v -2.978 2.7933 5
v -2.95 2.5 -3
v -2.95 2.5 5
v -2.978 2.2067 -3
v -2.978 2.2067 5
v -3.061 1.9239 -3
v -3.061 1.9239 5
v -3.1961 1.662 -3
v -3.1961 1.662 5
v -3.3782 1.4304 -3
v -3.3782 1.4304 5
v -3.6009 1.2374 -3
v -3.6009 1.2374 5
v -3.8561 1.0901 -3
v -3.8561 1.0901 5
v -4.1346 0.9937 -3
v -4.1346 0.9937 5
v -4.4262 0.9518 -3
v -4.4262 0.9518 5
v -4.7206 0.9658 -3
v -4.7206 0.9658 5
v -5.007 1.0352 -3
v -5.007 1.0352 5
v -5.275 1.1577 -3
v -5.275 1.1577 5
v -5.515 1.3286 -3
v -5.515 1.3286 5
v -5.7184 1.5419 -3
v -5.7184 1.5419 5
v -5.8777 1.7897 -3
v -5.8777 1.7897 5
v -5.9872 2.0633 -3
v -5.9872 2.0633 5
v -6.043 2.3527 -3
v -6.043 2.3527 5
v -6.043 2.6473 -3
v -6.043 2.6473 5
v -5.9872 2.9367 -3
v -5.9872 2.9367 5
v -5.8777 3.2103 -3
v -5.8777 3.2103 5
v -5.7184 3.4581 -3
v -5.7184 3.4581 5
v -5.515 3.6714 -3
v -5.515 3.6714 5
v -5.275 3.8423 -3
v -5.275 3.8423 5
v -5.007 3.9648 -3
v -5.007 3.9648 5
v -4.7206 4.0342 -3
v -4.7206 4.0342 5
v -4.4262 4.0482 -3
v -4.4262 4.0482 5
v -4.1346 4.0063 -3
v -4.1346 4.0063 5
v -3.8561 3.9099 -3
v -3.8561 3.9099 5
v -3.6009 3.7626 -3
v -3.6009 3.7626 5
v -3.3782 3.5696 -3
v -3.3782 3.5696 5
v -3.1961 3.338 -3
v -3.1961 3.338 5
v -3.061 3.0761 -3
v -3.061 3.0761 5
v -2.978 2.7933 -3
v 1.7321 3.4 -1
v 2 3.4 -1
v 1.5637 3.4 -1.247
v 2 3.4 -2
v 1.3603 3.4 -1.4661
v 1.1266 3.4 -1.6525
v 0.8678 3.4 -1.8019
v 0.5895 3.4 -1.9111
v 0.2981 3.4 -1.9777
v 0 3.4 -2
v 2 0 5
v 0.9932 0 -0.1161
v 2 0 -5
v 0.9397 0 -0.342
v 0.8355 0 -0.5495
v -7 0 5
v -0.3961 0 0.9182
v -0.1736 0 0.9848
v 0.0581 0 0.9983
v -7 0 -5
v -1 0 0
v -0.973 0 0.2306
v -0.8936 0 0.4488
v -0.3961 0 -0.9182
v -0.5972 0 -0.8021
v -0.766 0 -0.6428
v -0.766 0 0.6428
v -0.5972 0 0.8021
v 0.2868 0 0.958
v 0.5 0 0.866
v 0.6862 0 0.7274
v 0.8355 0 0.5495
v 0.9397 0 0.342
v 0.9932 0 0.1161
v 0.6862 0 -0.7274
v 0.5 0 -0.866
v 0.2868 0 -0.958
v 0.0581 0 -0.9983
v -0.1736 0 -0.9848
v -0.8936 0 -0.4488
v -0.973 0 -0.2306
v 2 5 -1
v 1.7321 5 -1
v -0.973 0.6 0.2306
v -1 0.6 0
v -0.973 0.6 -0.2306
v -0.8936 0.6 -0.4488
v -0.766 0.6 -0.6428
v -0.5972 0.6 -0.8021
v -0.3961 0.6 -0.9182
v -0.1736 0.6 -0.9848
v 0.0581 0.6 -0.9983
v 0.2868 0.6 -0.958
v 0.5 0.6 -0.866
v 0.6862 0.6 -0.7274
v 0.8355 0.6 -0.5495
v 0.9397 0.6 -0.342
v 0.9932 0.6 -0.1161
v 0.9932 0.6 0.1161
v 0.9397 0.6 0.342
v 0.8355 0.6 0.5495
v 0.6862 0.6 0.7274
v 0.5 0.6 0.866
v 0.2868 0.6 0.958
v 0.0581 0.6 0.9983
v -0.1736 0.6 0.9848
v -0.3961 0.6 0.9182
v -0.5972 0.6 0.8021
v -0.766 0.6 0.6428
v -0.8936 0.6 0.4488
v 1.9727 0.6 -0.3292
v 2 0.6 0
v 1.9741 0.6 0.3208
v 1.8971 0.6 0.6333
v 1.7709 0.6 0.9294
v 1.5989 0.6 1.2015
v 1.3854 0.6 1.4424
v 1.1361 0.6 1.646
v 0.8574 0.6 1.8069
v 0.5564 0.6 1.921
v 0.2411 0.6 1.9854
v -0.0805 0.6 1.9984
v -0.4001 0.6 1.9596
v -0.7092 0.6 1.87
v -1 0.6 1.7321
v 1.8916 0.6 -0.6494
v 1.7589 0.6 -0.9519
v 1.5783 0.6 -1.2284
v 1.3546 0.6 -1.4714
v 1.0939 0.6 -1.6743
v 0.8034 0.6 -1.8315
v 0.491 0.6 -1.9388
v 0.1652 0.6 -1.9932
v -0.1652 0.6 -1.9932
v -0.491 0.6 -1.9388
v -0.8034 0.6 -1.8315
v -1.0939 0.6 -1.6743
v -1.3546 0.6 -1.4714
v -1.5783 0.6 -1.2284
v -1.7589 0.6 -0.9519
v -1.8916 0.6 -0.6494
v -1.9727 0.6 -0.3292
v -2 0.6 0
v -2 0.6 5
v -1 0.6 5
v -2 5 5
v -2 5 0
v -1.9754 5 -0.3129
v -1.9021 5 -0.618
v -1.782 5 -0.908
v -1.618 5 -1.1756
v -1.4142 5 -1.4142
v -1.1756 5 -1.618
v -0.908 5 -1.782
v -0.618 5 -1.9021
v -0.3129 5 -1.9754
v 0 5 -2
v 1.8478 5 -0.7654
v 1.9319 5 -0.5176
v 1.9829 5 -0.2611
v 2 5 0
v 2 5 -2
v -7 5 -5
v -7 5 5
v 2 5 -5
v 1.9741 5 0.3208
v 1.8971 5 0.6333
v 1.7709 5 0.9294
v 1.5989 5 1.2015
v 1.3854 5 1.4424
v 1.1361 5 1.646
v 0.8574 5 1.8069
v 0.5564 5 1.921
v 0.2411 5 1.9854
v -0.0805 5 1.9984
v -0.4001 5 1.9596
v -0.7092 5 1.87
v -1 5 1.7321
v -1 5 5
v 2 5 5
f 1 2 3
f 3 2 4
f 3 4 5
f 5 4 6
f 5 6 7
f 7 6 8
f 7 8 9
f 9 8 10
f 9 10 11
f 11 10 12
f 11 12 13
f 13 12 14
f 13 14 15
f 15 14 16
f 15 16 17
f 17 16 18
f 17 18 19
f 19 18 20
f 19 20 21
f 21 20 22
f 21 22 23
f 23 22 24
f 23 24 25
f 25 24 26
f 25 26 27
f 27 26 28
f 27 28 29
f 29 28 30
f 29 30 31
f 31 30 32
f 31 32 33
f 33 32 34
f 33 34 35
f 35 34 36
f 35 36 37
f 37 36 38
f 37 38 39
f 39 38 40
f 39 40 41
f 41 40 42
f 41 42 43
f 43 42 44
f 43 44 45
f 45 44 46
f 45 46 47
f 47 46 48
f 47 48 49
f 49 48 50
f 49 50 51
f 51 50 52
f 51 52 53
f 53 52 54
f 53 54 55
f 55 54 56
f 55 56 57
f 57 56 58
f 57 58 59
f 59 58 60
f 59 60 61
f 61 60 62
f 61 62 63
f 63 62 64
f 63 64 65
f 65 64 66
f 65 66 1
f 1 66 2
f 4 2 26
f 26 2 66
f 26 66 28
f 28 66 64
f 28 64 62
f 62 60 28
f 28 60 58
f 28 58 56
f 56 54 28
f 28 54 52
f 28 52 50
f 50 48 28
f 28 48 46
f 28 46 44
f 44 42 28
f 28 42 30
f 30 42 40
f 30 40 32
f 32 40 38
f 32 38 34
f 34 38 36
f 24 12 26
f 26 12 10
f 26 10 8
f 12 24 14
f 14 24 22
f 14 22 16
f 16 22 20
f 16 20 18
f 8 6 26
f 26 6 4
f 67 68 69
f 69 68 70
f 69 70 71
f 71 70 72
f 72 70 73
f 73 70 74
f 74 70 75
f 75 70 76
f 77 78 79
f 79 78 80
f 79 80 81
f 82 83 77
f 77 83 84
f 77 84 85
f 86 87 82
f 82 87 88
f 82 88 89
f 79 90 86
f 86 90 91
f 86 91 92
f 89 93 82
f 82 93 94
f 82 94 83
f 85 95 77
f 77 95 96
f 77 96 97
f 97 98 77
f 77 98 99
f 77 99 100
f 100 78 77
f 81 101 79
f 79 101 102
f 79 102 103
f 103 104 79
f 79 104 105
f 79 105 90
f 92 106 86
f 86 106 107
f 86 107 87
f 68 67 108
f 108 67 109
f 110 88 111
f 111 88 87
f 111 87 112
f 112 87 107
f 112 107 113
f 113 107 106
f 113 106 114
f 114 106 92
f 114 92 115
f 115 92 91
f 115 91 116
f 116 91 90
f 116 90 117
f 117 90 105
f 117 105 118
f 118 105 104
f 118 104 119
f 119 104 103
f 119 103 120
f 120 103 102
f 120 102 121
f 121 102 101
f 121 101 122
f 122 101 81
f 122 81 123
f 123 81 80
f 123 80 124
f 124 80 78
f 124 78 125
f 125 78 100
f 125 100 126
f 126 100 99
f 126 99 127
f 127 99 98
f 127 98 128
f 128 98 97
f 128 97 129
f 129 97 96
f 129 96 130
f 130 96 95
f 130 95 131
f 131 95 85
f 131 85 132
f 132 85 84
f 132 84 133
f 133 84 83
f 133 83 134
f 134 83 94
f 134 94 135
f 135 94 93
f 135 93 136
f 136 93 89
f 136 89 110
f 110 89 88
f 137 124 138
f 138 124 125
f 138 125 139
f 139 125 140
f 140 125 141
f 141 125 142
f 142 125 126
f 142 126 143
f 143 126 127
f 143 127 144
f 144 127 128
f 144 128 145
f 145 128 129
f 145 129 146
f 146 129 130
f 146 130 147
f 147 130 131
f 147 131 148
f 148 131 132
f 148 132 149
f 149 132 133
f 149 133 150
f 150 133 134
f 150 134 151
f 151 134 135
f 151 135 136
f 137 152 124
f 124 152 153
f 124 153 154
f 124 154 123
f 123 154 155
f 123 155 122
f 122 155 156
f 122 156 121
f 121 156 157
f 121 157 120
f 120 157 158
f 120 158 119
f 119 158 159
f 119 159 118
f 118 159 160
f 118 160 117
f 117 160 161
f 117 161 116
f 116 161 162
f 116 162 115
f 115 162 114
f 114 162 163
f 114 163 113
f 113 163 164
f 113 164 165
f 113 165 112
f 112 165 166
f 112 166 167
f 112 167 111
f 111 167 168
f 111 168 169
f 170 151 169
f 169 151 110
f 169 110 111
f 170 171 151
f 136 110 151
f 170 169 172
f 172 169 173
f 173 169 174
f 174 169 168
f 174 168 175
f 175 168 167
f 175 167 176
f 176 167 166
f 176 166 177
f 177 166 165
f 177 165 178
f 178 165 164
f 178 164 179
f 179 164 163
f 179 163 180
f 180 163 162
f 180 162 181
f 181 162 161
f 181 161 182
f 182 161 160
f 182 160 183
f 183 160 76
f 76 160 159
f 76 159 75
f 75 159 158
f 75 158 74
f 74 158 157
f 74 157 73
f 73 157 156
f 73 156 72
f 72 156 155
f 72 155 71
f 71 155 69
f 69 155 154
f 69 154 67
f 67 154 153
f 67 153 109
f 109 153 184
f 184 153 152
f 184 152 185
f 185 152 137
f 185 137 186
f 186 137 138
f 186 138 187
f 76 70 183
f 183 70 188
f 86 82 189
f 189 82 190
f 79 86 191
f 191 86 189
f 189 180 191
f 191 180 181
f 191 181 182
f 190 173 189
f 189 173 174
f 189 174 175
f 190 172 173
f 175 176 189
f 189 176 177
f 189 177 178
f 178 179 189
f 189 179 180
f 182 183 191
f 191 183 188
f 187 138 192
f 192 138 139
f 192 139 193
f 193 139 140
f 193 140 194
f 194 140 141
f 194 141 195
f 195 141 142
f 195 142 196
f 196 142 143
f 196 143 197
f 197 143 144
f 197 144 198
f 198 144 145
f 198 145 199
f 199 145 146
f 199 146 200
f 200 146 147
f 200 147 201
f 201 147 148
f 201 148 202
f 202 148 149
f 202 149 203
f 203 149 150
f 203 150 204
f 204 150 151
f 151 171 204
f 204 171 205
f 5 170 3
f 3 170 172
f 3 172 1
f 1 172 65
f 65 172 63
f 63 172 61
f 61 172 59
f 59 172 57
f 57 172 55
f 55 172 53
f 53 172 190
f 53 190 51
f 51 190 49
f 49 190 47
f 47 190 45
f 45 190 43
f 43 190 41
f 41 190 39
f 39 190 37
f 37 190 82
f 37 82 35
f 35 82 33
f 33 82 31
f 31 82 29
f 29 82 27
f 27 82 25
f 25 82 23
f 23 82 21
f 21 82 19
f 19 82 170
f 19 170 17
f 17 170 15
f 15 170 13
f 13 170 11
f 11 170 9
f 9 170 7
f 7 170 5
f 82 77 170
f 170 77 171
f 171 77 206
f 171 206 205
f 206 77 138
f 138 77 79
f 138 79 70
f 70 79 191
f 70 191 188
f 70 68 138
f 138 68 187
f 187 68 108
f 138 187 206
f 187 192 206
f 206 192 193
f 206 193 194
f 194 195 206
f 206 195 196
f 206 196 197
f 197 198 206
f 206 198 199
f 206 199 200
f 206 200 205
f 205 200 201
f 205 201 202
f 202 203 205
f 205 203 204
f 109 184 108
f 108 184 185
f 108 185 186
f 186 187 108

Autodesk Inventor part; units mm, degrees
ref_plane "YZ Plane" through (0, 0, 0) normal (1, 0, 0) x (0, 1, 0)
ref_plane "XZ Plane" through (0, 0, 0) normal (0, 1, 0) x (-1, 0, 0)
ref_plane "XY Plane" through (0, 0, 0) normal (0, 0, 1) x (1, 0, 0)
sketch "スケッチ1" plane through (0, 0, 0) normal (0, 1, 0) x (-1, 0, 0)
  circle A0 centre (0, 0) radius 1.15
  circle A1 centre (0, 0) radius 1
  circle A2 centre (0, 0) radius 1.5
  circle A3 centre (0, 0) radius 2
  line L0 (1.5, 0) -> (1, 0)
  line L1 (1, 0) -> (1, 2)
  line L2 (1, 2) -> (1.5, 2)
  line L3 (1.5, 2) -> (1.5, 0)
  line L4 (0, 0) -> (5, 0)
  line L5 (5, 0) -> (5, -5)
  line L6 (5, -5) -> (0, -5)
  line L7 (0, -5) -> (0, 0)
  line L8 (5, -5) -> (0, -5)
  line L9 (0, -5) -> (0, 5)
  line L10 (0, 5) -> (5, 5)
  line L11 (5, 5) -> (5, -5)
  line L12 (0, 0) -> (-2, 0)
  line L13 (-2, 0) -> (-2, -5)
  line L14 (-2, -5) -> (0, -5)
  line L15 (0, -5) -> (0, 0)
  line L16 (-2, -5) -> (1.5, -5)
  line L17 (1.5, -5) -> (1.5, -1.5)
  line L18 (1.5, -1.5) -> (-2, -1.5)
  line L19 (-2, -1.5) -> (-2, -5)
  line L20 (1.5, 2) -> (-2, 2)
  line L21 (-2, 2) -> (-2, 5)
  line L22 (-2, 5) -> (1.5, 5)
  line L23 (1.5, 5) -> (1.5, 2)
  line L24 (-2, 2) -> (1.5, 2)
  line L25 (1.5, 2) -> (1.5, -1.5)
  line L26 (1.5, -1.5) -> (-2, -1.5)
  line L27 (-2, -1.5) -> (-2, 2)
  line L28 (0, -1) -> (-2, -1)
  line L29 (1.5, 2) -> (1, 2)
  line L30 (1, 2) -> (1, 5)
  line L31 (1, 5) -> (1.5, 5)
  line L32 (1.5, 5) -> (1.5, 2)
  line L33 (5, 5) -> (7, 5)
  line L34 (7, 5) -> (7, -5)
  line L35 (7, -5) -> (5, -5)
  line L36 (5, -5) -> (5, 5)
  line L37 (1, 0) -> (2, 0)
  line L38 (2, 0) -> (2, 5.3047)
  line L39 (2, 5.3047) -> (1, 5.3047)
  line L40 (1, 5.3047) -> (1, 0)
  line L41 (0, -2) -> (-2, -2)
  line L42 (-2, -2) -> (-2, -1)
  line L43 (-2, -1) -> (0, -1)
  line L44 (0, -1) -> (0, -2)
  point P0 (0, -1.5)
  point P1 (-2, -1.5)
  point P2 (0, 2)
  point P3 (1, 1.118)
  point P4 (-1.118, -1)
  point P5 (1.5, 5)
  point P6 (1, 1.7321)
  point P7 (-1.7321, -1)
  point P8 (2, 5)
  dimension "d2" = 3
  dimension "d3" = 4
  dimension "d0" = 2.3
  dimension "d1" = 2
  dimension "d4" = 5
  dimension "d5" = 5
  dimension "d6" = 10
  dimension "d15" = 2
extrude "押し出し1" add sketch "スケッチ1" along normal blind 5 contours L4 L5 L6 L17 L25 A3 | L38 L10 L11 L4 | L25 L18 A3 | A3 L20 L1 | A3 L18 L17 L6 L7 | L7 L14 L13 L41 | L11 L33 L34 L35 L5 | L20 L21 L22 L9 | L9 L10 L30 L20 | A3 L27 L20 | L28 L13 A3
extrude "押し出し2" add sketch "スケッチ1" along normal blind 0.6 contours L0 L1 A0 | L0 A2 L7 A0 | A0 L1 A2 L0 | A0 L7 A1 L0 | L1 A1 L9 A0 | A0 L9 A2 L1 | L7 A2 L28 A0 | A0 L28 L7 | L25 A3 L18 A2 | A2 L1 A3 L3 | L3 A3 L4 | L4 A3 L25 | L9 A1 L12 A0 | A0 L12 A2 L9 | A2 L9 A3 L1 | L28 A2 L12 A0 | A0 L12 A1 L28 | L18 A3 L28 A2 | L18 A3 L7 | L7 A3 L18 | L3 L23 L10 L38 A3 | A3 L1 L2 L3 | A2 L12 A3 L9 | L28 A3 L12 A2 | L41 L13 L18 A3 | L18 L13 L28 A3 | L2 L30 L10 L23
extrude "押し出し4" add sketch "スケッチ1" along normal blind 3.4 contours L41 L13 L18 A3 | L18 L13 L28 A3
sketch "スケッチ4" plane through (-7, 0, 5) normal (0, 0, 1) x (1, 0, 0)
  line L0 (9, 5) -> (0, 5) projected
  line L1 (0, 5) -> (2.5, 5)
  line L2 (2.5, 5) -> (2.5, 2.5)
  line L3 (2.5, 2.5) -> (0, 2.5)
  line L4 (0, 2.5) -> (0, 5)
  point P0 (7, 0)
  dimension "d25" = 2.5
  dimension "d26" = 2.5
hole "穴2" at (-4.5, 2.5, 5) direction (0, 0, -1) diameter 3.1 depth 8
properties part number "rod4.3"
